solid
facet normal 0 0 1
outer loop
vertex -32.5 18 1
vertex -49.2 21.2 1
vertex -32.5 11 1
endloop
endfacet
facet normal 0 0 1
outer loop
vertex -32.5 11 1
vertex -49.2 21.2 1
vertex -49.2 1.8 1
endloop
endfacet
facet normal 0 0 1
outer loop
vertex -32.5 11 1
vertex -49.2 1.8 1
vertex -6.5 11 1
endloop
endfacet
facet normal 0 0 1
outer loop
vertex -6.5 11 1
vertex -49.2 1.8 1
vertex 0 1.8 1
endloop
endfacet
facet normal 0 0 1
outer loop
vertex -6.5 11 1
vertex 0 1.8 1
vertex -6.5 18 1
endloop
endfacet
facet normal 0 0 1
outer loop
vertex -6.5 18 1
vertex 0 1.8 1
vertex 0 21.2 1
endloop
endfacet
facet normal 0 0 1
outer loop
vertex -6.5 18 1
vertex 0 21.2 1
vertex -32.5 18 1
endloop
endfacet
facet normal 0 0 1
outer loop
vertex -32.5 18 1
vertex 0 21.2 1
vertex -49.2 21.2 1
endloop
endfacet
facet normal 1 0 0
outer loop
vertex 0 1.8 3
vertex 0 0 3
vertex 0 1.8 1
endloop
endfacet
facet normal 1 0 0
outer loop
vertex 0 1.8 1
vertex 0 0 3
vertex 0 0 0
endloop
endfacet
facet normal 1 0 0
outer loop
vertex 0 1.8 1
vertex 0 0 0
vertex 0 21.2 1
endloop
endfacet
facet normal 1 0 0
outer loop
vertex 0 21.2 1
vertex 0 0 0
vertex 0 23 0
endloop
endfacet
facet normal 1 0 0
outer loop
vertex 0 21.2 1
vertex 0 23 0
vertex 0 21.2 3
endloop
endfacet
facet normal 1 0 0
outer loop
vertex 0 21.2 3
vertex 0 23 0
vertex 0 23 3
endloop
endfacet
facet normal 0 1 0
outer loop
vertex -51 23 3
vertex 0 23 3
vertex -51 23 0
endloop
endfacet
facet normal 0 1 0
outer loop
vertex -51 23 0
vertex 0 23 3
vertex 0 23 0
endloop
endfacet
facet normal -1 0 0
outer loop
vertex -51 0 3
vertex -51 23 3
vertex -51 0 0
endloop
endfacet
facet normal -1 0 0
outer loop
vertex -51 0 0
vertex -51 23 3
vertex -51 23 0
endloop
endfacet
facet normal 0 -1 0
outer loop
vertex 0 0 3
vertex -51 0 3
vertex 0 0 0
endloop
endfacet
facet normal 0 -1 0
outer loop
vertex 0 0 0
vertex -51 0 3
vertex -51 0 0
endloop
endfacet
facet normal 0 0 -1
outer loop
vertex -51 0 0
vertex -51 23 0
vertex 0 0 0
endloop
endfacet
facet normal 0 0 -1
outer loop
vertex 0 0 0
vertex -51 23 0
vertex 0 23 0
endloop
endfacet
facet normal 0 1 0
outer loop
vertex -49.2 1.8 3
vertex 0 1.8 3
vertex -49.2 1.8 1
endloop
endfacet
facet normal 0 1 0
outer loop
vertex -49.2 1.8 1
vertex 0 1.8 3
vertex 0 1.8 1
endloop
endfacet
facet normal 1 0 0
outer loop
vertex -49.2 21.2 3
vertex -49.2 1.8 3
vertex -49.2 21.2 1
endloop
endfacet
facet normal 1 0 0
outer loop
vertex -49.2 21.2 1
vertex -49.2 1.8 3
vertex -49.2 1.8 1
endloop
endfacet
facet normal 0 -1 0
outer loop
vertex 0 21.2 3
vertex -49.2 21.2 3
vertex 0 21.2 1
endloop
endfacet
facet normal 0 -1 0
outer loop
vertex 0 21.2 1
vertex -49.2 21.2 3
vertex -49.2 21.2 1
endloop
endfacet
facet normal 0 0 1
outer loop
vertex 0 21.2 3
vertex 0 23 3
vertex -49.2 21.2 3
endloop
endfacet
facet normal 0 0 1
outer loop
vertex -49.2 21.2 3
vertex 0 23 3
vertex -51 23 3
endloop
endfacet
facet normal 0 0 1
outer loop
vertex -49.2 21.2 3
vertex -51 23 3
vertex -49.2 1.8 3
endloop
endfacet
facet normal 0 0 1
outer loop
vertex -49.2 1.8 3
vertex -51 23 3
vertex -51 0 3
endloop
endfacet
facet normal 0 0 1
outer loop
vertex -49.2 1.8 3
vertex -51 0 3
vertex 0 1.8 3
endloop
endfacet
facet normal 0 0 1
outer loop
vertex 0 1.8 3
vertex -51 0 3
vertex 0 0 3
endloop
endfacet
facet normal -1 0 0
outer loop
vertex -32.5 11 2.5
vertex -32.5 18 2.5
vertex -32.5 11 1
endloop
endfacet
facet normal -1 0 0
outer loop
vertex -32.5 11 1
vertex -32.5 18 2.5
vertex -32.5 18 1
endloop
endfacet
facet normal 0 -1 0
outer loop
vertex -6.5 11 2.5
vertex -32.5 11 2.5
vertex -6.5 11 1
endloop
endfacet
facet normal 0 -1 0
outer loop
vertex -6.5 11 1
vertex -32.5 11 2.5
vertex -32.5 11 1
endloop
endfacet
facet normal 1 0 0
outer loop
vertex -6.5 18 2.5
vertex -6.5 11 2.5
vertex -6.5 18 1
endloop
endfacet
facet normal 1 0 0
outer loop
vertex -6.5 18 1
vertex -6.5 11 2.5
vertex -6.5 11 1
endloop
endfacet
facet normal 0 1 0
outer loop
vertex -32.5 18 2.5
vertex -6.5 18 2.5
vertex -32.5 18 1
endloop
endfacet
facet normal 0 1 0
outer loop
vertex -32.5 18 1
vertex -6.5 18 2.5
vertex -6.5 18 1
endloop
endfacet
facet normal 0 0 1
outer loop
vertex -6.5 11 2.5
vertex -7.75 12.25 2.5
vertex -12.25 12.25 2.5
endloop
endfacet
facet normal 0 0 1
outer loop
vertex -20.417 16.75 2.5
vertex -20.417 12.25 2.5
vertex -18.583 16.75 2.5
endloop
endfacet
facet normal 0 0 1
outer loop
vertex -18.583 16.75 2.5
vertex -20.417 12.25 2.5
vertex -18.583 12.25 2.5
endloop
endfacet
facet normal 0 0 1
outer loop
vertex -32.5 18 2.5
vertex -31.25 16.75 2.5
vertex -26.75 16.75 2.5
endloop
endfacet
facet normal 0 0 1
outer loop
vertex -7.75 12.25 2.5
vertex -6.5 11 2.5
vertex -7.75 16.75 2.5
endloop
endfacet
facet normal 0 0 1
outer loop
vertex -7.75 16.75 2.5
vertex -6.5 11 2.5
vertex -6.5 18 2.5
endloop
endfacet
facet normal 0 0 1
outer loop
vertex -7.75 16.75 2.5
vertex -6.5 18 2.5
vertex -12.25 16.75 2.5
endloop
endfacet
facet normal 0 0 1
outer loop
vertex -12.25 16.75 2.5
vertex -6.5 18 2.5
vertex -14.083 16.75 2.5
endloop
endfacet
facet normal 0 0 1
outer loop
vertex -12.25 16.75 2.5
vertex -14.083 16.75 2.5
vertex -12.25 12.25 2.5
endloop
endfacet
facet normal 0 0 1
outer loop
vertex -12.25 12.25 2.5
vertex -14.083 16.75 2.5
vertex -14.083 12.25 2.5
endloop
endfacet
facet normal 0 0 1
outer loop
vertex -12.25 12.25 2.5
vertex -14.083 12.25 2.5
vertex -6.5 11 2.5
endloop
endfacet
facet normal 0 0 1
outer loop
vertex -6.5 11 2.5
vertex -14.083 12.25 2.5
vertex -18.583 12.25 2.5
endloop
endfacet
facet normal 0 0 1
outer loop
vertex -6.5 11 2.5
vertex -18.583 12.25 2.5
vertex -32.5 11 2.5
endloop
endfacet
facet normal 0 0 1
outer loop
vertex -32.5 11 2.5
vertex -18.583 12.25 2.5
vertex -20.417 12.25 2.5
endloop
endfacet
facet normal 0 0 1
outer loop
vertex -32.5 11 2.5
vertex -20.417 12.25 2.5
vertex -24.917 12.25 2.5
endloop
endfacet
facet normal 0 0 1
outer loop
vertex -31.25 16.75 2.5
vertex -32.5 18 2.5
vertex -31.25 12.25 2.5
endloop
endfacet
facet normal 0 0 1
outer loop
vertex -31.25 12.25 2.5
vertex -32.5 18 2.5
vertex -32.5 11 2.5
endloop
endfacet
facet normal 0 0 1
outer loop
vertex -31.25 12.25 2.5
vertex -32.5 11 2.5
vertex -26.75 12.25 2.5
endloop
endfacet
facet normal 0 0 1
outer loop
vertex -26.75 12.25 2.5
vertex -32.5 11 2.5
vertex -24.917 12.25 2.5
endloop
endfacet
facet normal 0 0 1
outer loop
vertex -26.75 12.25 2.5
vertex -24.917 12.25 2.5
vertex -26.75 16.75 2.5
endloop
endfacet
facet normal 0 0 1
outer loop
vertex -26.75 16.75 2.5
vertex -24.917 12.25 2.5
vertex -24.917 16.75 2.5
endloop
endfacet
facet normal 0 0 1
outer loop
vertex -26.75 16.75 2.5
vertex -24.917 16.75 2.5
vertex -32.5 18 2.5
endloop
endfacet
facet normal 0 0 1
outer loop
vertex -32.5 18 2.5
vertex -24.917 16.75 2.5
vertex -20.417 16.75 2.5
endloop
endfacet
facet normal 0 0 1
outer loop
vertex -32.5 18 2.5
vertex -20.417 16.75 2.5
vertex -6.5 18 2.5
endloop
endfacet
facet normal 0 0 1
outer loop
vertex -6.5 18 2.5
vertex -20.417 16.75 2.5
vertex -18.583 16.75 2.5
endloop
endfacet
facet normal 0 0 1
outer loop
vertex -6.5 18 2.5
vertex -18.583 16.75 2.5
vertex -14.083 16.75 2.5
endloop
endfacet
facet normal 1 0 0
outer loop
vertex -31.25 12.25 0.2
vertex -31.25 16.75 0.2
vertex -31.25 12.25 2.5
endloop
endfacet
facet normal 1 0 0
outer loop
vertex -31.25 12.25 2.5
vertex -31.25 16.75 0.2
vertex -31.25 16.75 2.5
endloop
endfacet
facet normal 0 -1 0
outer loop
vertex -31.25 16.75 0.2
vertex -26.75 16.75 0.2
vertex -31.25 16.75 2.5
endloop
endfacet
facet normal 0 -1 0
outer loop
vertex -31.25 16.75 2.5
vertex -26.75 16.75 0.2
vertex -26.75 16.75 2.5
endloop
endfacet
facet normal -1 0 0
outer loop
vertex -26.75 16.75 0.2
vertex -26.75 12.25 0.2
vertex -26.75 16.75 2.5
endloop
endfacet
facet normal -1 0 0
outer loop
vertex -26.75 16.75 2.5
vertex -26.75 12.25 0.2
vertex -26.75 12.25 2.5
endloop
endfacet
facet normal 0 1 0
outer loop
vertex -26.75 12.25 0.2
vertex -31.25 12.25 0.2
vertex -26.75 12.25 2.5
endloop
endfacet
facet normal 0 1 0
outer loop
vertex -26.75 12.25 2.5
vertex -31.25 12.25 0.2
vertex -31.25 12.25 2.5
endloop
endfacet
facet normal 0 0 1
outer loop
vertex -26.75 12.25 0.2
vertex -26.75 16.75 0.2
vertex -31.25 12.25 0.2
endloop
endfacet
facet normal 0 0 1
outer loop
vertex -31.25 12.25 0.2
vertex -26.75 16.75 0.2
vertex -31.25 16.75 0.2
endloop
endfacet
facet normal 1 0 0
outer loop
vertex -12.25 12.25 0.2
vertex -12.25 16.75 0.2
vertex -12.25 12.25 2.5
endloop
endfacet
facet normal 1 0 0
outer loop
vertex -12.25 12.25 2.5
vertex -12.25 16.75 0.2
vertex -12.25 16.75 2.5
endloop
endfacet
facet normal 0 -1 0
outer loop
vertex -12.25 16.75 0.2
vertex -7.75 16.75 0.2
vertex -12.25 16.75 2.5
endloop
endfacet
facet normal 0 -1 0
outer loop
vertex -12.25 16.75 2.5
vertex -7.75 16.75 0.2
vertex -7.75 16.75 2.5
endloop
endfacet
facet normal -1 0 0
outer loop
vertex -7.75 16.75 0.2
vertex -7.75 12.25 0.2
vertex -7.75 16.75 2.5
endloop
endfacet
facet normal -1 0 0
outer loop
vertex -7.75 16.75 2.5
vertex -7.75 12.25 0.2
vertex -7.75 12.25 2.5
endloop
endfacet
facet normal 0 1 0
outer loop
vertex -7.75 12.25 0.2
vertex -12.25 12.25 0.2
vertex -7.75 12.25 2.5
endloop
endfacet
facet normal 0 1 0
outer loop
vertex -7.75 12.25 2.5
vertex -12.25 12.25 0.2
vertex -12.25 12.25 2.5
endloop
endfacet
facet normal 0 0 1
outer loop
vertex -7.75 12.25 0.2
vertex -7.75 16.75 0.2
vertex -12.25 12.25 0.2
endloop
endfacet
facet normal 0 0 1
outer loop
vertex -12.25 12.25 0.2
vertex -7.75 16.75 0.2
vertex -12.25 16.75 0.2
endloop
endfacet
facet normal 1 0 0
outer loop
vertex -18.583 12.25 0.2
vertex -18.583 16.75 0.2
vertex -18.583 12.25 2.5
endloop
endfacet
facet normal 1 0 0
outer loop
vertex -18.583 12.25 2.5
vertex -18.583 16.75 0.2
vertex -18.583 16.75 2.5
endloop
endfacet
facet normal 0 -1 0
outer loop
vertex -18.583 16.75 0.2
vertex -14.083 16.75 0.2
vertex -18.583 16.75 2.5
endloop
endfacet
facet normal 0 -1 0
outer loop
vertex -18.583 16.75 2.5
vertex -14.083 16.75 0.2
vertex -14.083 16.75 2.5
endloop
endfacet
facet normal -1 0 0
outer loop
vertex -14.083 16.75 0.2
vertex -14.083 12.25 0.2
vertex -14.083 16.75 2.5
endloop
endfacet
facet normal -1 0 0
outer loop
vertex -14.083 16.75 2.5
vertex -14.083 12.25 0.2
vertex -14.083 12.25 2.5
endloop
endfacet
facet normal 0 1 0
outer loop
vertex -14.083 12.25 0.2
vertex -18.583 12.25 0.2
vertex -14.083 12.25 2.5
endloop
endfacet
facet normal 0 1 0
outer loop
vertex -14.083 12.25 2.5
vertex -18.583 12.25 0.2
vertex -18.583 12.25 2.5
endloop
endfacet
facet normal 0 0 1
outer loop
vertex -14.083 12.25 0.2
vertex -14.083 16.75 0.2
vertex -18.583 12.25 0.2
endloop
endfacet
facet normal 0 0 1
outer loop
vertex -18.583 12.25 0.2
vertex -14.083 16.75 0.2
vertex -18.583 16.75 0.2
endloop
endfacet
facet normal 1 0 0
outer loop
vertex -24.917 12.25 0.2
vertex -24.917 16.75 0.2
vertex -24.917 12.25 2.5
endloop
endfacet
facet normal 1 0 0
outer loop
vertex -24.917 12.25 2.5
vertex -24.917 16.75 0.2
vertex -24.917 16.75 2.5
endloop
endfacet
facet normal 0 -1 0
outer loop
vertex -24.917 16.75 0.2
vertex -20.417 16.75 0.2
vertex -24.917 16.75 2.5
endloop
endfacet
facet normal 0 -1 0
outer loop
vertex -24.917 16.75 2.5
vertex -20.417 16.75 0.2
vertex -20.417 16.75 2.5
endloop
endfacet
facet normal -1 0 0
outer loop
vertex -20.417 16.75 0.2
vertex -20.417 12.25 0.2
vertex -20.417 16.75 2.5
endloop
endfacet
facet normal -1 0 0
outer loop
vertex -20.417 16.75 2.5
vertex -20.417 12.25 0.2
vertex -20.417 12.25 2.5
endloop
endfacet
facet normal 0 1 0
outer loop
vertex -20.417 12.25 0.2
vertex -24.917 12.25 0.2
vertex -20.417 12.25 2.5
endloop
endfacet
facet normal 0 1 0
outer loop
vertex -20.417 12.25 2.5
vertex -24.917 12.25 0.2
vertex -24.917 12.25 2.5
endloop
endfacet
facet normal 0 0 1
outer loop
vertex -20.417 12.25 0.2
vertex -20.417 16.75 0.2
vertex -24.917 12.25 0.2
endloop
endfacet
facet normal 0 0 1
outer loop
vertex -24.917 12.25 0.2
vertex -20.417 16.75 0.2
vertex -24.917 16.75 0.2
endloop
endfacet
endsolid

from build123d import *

# Parameters (mm, degrees)
SKETCH1_W           = 51
SKETCH1_H           = 23
BOSS_EXTRUDE1_DEPTH = 1
BOSS_EXTRUDE2_DEPTH = 2
SKETCH3_W           = 26
SKETCH3_H           = 7
BOSS_EXTRUDE3_DEPTH = 1.5
SKETCH4_W           = 4.5
SKETCH4_H           = 4.5
CUT_EXTRUDE1_DEPTH  = 2.3


with BuildPart() as part:
    # Sketch1 → Boss-Extrude1 (new body)
    with BuildSketch(Plane.XY):
        with Locations((-25.5, 11.5)):
            Rectangle(SKETCH1_W, SKETCH1_H)
    extrude(amount=BOSS_EXTRUDE1_DEPTH)

    # Sketch2 → Boss-Extrude2 (add)
    with BuildSketch(Plane.XY.offset(1)):
        Polygon((-51, 23), (0, 23), (0, 21.2), (-49.2, 21.2), (-49.2, 1.8), (0, 1.8), (0, 0), (-51, 0), (-51, 1.8), (-51, 21.2), align=None)
    extrude(amount=BOSS_EXTRUDE2_DEPTH)

    # Sketch3 → Boss-Extrude3 (add)
    with BuildSketch(Plane.XY.offset(1)):
        with Locations((-19.5, 14.5)):
            Rectangle(SKETCH3_W, SKETCH3_H)
    extrude(amount=BOSS_EXTRUDE3_DEPTH)

    # Sketch4 → Cut-Extrude1 (cut)
    with BuildSketch(Plane.XY.offset(2.5)):
        with Locations((-29, 14.5)):
            Rectangle(SKETCH4_W, SKETCH4_H)
        with Locations((-22.666666667, 14.5)):
            Rectangle(SKETCH4_W, SKETCH4_H)
        with Locations((-16.333333333, 14.5)):
            Rectangle(SKETCH4_W, SKETCH4_H)
        with Locations((-10, 14.5)):
            Rectangle(SKETCH4_W, SKETCH4_H)
    extrude(amount=-CUT_EXTRUDE1_DEPTH, mode=Mode.SUBTRACT)


solid = part.part
